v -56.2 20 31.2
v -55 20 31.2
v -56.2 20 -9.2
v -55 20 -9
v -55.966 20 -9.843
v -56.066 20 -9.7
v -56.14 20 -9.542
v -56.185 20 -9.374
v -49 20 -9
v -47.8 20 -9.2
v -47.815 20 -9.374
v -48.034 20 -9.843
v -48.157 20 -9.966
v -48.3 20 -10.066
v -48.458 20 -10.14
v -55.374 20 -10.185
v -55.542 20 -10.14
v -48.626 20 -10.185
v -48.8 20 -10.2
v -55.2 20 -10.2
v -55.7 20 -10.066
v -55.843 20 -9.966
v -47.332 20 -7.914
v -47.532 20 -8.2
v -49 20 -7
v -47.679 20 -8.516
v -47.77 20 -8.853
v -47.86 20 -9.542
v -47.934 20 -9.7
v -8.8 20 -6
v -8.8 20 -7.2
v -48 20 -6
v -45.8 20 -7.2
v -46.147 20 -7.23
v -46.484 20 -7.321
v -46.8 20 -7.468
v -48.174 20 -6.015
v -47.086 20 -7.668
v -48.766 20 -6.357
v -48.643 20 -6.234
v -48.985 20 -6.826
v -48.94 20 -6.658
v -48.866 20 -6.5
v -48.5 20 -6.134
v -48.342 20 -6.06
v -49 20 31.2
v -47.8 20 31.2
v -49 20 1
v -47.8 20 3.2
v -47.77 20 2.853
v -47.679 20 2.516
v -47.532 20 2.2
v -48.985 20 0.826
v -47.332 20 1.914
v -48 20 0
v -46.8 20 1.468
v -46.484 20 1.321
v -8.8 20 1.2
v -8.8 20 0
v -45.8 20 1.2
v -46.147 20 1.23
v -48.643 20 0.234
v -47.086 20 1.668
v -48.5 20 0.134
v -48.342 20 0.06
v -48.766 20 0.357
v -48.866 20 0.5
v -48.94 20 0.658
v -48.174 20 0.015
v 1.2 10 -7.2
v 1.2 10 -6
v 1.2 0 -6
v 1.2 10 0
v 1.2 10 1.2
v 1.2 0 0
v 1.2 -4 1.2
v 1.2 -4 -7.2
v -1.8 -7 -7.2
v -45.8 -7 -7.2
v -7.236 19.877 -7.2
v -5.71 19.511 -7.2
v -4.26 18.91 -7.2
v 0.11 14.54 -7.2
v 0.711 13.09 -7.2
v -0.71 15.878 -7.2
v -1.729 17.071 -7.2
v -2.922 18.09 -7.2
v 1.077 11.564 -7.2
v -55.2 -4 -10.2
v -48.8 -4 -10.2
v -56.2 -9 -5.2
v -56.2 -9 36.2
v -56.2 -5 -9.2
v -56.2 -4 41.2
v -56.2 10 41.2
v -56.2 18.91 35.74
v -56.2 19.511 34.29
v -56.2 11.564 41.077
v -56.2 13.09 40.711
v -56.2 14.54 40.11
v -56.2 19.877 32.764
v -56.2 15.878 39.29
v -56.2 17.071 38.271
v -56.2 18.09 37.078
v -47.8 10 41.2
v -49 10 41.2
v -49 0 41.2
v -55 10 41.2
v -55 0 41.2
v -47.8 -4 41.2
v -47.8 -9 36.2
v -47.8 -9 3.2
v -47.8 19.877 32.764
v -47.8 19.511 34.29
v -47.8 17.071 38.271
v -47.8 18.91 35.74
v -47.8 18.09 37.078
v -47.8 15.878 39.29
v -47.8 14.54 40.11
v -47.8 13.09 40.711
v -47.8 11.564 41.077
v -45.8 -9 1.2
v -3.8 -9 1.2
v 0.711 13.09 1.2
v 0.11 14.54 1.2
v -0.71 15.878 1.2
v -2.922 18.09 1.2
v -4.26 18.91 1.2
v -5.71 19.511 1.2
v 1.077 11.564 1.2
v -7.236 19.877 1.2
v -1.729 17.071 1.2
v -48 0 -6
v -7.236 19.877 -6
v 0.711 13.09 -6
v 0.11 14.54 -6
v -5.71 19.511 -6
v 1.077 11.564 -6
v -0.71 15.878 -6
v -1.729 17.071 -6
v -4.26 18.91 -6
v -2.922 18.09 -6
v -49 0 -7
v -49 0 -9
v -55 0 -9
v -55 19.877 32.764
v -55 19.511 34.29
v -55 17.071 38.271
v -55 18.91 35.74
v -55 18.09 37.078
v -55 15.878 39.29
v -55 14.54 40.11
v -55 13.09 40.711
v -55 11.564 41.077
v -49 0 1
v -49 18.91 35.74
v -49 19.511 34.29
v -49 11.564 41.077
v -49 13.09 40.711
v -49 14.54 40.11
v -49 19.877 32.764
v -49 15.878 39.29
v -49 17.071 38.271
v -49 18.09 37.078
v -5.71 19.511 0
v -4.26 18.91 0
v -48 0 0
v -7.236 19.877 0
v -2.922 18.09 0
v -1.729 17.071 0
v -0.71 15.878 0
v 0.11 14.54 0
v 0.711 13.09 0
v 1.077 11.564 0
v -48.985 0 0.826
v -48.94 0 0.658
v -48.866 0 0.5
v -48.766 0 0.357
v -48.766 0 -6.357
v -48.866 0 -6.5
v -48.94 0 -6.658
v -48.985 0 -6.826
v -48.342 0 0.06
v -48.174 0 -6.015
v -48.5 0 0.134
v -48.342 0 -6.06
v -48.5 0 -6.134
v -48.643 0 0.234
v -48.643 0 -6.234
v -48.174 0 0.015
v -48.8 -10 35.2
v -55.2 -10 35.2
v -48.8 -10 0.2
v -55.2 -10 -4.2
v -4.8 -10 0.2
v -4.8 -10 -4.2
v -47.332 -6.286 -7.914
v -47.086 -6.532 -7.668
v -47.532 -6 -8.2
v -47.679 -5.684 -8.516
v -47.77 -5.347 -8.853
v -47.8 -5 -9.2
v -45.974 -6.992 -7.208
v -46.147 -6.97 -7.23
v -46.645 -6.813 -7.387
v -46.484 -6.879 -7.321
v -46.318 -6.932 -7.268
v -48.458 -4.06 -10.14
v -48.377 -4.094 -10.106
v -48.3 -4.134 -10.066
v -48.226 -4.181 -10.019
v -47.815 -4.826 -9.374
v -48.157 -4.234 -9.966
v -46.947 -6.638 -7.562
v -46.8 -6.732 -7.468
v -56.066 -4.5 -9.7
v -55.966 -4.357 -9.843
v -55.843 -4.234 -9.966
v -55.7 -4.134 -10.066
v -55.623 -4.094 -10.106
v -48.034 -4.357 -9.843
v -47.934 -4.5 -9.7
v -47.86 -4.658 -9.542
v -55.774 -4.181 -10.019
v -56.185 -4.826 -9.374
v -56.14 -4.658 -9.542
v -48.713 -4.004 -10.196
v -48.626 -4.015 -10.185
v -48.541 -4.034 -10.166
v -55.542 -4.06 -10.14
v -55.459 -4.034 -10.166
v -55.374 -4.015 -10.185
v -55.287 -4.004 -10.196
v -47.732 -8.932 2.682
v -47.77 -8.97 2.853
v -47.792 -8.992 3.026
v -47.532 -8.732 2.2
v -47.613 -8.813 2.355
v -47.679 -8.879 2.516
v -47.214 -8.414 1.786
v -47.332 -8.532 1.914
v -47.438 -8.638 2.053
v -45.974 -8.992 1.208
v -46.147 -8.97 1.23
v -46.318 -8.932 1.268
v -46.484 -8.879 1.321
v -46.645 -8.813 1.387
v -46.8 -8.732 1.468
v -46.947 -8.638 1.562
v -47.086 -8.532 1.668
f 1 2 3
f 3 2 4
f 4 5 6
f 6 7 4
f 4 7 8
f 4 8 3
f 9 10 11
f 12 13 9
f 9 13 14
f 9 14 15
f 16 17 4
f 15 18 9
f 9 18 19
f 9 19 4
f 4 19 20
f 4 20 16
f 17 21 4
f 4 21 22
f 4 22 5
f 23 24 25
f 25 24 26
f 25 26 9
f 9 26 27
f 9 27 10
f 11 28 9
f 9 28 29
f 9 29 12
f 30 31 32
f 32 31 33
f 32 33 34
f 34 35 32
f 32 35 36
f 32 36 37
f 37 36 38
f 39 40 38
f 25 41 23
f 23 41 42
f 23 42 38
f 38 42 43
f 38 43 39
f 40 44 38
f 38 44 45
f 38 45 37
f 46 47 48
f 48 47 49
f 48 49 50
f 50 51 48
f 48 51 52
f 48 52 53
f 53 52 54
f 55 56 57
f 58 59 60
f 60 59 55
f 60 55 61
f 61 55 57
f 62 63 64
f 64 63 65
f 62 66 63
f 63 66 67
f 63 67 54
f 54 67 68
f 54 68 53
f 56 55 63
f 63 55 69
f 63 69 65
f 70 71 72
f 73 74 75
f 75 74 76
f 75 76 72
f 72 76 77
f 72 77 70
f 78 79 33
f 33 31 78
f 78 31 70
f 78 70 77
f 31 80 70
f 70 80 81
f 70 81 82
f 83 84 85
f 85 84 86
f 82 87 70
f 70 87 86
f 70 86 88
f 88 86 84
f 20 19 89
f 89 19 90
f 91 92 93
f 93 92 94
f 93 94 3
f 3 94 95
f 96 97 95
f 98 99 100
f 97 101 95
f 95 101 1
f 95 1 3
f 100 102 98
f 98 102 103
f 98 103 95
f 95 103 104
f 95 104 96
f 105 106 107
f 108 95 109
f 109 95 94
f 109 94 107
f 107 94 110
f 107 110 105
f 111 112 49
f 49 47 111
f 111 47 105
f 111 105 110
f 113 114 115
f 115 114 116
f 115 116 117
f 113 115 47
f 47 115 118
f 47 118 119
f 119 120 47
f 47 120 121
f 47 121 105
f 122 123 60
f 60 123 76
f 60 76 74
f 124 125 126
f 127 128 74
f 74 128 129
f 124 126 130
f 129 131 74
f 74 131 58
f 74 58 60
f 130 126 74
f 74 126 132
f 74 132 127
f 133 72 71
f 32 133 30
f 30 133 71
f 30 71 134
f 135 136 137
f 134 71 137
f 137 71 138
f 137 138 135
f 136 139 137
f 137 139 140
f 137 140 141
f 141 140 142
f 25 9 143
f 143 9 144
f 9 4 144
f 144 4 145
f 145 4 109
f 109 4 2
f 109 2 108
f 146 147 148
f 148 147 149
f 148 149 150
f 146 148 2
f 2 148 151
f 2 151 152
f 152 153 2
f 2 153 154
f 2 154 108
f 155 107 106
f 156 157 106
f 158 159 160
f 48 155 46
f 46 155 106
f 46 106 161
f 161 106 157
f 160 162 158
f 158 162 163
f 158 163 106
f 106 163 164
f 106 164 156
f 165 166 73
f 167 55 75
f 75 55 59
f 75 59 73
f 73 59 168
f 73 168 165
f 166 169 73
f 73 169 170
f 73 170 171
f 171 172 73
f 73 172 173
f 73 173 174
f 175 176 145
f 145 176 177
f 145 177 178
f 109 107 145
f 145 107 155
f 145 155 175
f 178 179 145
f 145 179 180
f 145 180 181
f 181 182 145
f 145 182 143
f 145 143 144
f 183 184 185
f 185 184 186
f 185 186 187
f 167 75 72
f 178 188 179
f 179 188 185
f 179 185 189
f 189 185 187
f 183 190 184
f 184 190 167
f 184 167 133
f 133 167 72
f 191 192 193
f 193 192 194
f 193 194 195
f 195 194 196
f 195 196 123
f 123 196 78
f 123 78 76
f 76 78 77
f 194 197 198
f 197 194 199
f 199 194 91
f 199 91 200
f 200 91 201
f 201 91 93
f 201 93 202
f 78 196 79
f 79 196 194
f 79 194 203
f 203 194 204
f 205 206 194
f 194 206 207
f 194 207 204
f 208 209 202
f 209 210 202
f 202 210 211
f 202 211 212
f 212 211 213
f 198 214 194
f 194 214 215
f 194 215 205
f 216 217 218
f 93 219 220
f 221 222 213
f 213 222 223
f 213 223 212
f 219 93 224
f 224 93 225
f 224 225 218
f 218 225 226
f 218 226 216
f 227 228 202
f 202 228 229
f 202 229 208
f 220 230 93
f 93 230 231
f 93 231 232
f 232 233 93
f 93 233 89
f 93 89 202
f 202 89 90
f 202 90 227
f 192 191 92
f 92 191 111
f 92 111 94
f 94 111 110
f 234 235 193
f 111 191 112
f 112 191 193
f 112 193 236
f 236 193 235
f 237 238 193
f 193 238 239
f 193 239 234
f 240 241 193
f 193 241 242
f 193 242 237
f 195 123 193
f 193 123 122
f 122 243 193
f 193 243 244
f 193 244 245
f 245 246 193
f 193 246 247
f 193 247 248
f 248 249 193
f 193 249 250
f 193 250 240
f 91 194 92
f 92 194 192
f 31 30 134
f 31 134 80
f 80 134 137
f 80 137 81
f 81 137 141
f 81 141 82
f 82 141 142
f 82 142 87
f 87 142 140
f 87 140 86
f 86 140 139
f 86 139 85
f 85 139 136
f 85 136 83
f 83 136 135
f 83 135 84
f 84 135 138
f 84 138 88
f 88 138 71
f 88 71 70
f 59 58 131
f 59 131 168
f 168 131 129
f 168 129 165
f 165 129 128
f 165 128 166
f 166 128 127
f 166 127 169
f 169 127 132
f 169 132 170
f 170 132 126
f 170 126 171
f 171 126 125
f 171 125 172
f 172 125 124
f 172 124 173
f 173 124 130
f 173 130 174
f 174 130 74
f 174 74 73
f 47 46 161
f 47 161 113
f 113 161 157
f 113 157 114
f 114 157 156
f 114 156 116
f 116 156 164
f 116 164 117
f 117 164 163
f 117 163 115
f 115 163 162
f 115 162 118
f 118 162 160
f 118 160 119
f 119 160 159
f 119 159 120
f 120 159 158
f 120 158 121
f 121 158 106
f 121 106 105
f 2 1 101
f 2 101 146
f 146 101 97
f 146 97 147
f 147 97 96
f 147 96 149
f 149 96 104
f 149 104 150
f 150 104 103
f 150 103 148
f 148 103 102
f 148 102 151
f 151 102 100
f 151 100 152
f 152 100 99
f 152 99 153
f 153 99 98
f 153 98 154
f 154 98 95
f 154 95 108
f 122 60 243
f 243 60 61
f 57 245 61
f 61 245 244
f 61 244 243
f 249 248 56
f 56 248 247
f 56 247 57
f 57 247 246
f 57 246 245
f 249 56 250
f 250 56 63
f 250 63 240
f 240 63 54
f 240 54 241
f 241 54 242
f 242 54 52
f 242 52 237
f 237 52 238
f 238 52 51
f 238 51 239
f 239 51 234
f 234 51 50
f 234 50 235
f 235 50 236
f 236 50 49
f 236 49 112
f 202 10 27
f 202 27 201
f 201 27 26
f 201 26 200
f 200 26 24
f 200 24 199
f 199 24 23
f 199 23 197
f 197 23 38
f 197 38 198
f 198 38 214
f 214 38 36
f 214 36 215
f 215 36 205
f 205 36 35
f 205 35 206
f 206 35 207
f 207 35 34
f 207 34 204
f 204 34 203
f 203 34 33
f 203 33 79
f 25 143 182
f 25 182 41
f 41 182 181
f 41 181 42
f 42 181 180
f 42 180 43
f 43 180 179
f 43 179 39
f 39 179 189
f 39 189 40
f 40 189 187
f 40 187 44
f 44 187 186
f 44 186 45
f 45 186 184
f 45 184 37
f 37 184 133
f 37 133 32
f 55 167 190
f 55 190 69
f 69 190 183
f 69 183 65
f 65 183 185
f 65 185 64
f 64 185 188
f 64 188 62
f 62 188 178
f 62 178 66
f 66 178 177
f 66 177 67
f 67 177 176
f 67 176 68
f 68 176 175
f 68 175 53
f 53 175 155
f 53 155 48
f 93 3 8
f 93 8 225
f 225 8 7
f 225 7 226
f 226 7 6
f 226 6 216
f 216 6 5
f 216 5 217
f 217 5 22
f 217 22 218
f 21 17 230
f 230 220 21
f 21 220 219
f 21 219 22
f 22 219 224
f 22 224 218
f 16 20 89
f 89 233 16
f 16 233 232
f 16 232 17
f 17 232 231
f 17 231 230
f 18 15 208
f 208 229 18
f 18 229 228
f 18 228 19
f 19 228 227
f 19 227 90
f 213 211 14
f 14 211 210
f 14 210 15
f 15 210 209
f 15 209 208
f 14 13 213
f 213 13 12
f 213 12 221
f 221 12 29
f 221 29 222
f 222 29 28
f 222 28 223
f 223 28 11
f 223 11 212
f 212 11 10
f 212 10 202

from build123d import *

# Parameters (mm, degrees)
EXTRUDE_1_DEPTH     = 20
EXTRUDE_1_2_DEPTH   = 10
CHAMFER_1_SIZE      = 6
CHAMFER_2_SIZE      = 1
CUT_EXTRUDE_1_REACH = 74.497
SKETCH_3_W          = 6
SKETCH_3_H          = 20
CUT_EXTRUDE_2_REACH = 79.965
SKETCH_4_W          = 6
SKETCH_4_H          = 20
FILLET_1_R          = 10
FILLET_2_R          = 2
FILLET_3_R          = 1


with BuildPart() as part:
    # Эскиз1 → Extrude 1 (new body)
    with BuildSketch(Plane(origin=(0, 0, 0), x_dir=(1, 0, 0), z_dir=(0, 1, 0))):
        Polygon((1.2, -1.2), (-47.8, -1.2), (-47.8, -41.2), (-56.2, -41.2), (-56.2, 10.2), (-47.8, 10.2), (-47.8, 7.2), (1.2, 7.2), align=None)
        Polygon((0, 0), (-49, 0), (-49, -40), (-55, -40), (-55, 9), (-49, 9), (-49, 6), (0, 6), align=None, mode=Mode.SUBTRACT)
    extrude(amount=EXTRUDE_1_DEPTH)

    # Эскиз2 → Extrude 1 2 (add)
    with BuildSketch(Plane.XZ):
        Polygon((-56.2, 41.2), (-47.8, 41.2), (-47.8, 1.2), (1.2, 1.2), (1.2, -7.2), (-47.8, -7.2), (-47.8, -10.2), (-56.2, -10.2), align=None)
    extrude(amount=EXTRUDE_1_2_DEPTH)

    # Фаска1
    chamfer_1_edges = [part.edges().sort_by_distance(p)[0] for p in [
        (1.2, -10, -3),
    ]]
    chamfer(chamfer_1_edges, length=CHAMFER_1_SIZE)
    chamfer_1_2_edges = [part.edges().sort_by_distance(p)[0] for p in [
        (-52, -10, -10.2),
    ]]
    chamfer(chamfer_1_2_edges, length=CHAMFER_1_SIZE)
    chamfer_1_3_edges = [part.edges().sort_by_distance(p)[0] for p in [
        (-52, -10, 41.2),
    ]]
    chamfer(chamfer_1_3_edges, length=CHAMFER_1_SIZE)

    # Фаска2
    chamfer_2_edges = [part.edges().sort_by_distance(p)[0] for p in [
        (-47.8, -10, 18.2),
        (-56.2, -10, 15.5),
        (-26.3, -10, 1.2),
    ]]
    chamfer(chamfer_2_edges, length=CHAMFER_2_SIZE)

    # Эскиз3 → Вырез-Вытянуть1 (cut, up to next)
    with BuildSketch(Plane.ZY, mode=Mode.PRIVATE) as cut_extrude_1_sk1:
        with Locations((-3, 10)):
            Rectangle(SKETCH_3_W, SKETCH_3_H)
    cut_extrude_1_tool1 = extrude(cut_extrude_1_sk1.sketch, amount=-CUT_EXTRUDE_1_REACH, mode=Mode.PRIVATE) & part.part
    add(cut_extrude_1_tool1.solids().sort_by_distance((0, 10, -3))[0], mode=Mode.SUBTRACT)

    # Эскиз4 → Вырез-Вытянуть2 (cut, up to next)
    with BuildSketch(Plane(origin=(0, 0, 40), x_dir=(-1, 0, 0), z_dir=(0, 0, -1)), mode=Mode.PRIVATE) as cut_extrude_2_sk1:
        with Locations((52, 10)):
            Rectangle(SKETCH_4_W, SKETCH_4_H)
    cut_extrude_2_tool1 = extrude(cut_extrude_2_sk1.sketch, amount=-CUT_EXTRUDE_2_REACH, mode=Mode.PRIVATE) & part.part
    add(cut_extrude_2_tool1.solids().sort_by_distance((-52, 10, 40))[0], mode=Mode.SUBTRACT)

    # Скругление1
    fillet_1_edges = [part.edges().sort_by_distance(p)[0] for p in [
        (1.2, 20, -6.6),
        (-48.4, 20, 41.2),
        (-55.6, 20, 41.2),
        (1.2, 20, 0.6),
    ]]
    fillet(fillet_1_edges, radius=FILLET_1_R)

    # Скругление2
    fillet_2_edges = [part.edges().sort_by_distance(p)[0] for p in [
        (-47.8, 5.5, 1.2),
        (-47.8, 6.5, -7.2),
    ]]
    fillet(fillet_2_edges, radius=FILLET_2_R)

    # Скругление3
    fillet_3_edges = [part.edges().sort_by_distance(p)[0] for p in [
        (-56.2, 8, -10.2),
        (-47.8, 8, -10.2),
        (-49, 10, -6),
        (-49, 10, 0),
    ]]
    fillet(fillet_3_edges, radius=FILLET_3_R - 0.0001)  # a hair under: the kernel refuses the full size


solid = part.part
